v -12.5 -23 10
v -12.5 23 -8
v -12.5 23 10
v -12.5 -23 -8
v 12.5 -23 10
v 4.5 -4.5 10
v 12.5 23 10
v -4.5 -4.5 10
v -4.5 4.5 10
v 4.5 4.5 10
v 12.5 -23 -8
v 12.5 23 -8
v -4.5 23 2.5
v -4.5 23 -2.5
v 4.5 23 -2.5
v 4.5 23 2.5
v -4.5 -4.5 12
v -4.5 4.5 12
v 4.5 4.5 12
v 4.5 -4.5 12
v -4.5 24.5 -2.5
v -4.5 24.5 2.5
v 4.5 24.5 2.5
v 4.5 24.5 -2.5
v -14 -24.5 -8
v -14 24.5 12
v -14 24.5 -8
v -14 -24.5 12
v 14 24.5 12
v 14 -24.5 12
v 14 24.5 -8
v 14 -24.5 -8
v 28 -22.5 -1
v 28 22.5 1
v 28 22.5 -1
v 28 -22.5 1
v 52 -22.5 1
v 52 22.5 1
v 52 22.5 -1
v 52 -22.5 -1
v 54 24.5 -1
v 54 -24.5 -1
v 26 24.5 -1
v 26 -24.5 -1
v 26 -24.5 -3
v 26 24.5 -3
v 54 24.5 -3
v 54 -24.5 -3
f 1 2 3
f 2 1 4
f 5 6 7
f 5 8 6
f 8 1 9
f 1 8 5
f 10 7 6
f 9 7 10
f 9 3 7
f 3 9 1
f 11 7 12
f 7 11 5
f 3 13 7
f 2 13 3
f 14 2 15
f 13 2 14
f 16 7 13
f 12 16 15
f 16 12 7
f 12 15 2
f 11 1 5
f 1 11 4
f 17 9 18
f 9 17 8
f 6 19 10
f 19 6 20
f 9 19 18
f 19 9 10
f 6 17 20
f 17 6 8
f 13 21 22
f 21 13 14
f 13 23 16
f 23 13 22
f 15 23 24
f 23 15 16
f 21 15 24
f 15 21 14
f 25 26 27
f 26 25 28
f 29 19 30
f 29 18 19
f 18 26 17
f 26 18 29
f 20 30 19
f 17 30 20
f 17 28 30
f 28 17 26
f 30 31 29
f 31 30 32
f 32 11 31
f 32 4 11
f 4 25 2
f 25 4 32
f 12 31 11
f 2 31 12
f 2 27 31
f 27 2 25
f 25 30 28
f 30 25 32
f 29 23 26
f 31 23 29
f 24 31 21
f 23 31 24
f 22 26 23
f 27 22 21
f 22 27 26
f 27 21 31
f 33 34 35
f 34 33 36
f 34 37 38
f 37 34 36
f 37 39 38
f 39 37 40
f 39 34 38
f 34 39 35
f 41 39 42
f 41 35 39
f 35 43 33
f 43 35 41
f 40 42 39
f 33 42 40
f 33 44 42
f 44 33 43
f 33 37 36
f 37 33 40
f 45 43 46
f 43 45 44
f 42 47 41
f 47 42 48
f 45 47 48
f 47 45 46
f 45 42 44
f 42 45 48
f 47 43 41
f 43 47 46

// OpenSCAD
difference() {
    translate([0,0,2])
cube([25+3,46+3,20],center=true);
union () {
cube([25,46,20],center=true);
translate([0,0,20])
cube([9,9,46],center=true);
translate([0,15,0])
    cube([9,30,5],center=true);

    }
}
translate([40,0,0])
union () {
cube([25-1,46-1,2],center=true);
    translate([0,0,-2])
cube([25+3,46+3,2],center=true);
    
    }
